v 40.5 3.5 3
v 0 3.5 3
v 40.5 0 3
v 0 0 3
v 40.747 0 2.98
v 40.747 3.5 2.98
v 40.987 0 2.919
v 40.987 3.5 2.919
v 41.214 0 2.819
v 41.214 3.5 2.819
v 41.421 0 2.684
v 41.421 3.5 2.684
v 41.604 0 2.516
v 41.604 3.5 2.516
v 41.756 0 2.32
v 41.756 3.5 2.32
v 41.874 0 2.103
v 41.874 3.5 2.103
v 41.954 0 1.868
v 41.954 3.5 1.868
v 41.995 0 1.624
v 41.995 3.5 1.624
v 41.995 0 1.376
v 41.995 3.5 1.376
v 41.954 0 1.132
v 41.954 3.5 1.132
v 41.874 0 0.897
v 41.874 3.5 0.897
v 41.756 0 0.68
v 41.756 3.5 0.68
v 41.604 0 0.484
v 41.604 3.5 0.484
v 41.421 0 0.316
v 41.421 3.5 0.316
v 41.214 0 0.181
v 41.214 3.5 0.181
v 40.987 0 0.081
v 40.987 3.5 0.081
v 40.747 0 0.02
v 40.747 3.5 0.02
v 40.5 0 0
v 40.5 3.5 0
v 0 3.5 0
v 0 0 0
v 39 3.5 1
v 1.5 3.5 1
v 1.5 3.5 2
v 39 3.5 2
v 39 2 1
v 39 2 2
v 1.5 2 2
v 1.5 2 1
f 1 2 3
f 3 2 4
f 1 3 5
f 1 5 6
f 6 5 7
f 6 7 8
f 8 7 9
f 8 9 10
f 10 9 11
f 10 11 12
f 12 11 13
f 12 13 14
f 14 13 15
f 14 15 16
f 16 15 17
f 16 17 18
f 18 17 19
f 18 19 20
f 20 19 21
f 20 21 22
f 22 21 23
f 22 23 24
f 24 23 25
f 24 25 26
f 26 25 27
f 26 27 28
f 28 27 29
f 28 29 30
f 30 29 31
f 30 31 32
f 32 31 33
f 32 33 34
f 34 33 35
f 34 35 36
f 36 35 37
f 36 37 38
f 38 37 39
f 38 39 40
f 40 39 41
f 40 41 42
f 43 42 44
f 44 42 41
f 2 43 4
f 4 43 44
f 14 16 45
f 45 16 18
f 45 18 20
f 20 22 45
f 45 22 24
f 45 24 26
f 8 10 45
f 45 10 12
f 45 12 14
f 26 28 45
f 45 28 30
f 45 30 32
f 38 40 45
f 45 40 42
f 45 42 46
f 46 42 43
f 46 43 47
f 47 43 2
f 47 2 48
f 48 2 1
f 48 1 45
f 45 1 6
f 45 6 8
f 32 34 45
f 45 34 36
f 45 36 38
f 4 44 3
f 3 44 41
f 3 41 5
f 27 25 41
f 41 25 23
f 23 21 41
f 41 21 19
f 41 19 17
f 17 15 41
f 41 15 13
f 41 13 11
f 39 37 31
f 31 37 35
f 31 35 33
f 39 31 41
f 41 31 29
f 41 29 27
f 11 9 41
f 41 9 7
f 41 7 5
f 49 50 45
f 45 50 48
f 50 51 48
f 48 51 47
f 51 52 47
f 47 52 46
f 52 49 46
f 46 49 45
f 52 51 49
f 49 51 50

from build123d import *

# Parameters (mm, degrees)
SKETCH_1_R          = 1.5
EXTRUDE_1_DEPTH     = 3.5
SKETCH_2_W          = 37.5
SKETCH_2_H          = 1
CUT_EXTRUDE_1_DEPTH = 1.5


with BuildPart() as part:
    # 草图1 → 凸台-拉伸1 (new body)
    with BuildSketch(Plane(origin=(0, 0, 0), x_dir=(1, 0, 0), z_dir=(0, 1, 0))):
        with BuildLine():
            Line((40.5, 0), (0, 0))
            Line((0, 0), (0, -3))
            Line((0, -3), (40.5, -3))
            ThreePointArc((40.5, -3), (39, -1.5), (40.5, 0))
        make_face()
        with Locations((40.5, -1.5)):
            Circle(SKETCH_1_R)
    extrude(amount=EXTRUDE_1_DEPTH)

    # 草图2 → 切除-拉伸1 (cut)
    with BuildSketch(Plane(origin=(0, 3.5, 0), x_dir=(1, 0, 0), z_dir=(0, 1, 0))):
        with Locations((20.25, -1.5)):
            Rectangle(SKETCH_2_W, SKETCH_2_H)
    extrude(amount=-CUT_EXTRUDE_1_DEPTH, mode=Mode.SUBTRACT)


solid = part.part
